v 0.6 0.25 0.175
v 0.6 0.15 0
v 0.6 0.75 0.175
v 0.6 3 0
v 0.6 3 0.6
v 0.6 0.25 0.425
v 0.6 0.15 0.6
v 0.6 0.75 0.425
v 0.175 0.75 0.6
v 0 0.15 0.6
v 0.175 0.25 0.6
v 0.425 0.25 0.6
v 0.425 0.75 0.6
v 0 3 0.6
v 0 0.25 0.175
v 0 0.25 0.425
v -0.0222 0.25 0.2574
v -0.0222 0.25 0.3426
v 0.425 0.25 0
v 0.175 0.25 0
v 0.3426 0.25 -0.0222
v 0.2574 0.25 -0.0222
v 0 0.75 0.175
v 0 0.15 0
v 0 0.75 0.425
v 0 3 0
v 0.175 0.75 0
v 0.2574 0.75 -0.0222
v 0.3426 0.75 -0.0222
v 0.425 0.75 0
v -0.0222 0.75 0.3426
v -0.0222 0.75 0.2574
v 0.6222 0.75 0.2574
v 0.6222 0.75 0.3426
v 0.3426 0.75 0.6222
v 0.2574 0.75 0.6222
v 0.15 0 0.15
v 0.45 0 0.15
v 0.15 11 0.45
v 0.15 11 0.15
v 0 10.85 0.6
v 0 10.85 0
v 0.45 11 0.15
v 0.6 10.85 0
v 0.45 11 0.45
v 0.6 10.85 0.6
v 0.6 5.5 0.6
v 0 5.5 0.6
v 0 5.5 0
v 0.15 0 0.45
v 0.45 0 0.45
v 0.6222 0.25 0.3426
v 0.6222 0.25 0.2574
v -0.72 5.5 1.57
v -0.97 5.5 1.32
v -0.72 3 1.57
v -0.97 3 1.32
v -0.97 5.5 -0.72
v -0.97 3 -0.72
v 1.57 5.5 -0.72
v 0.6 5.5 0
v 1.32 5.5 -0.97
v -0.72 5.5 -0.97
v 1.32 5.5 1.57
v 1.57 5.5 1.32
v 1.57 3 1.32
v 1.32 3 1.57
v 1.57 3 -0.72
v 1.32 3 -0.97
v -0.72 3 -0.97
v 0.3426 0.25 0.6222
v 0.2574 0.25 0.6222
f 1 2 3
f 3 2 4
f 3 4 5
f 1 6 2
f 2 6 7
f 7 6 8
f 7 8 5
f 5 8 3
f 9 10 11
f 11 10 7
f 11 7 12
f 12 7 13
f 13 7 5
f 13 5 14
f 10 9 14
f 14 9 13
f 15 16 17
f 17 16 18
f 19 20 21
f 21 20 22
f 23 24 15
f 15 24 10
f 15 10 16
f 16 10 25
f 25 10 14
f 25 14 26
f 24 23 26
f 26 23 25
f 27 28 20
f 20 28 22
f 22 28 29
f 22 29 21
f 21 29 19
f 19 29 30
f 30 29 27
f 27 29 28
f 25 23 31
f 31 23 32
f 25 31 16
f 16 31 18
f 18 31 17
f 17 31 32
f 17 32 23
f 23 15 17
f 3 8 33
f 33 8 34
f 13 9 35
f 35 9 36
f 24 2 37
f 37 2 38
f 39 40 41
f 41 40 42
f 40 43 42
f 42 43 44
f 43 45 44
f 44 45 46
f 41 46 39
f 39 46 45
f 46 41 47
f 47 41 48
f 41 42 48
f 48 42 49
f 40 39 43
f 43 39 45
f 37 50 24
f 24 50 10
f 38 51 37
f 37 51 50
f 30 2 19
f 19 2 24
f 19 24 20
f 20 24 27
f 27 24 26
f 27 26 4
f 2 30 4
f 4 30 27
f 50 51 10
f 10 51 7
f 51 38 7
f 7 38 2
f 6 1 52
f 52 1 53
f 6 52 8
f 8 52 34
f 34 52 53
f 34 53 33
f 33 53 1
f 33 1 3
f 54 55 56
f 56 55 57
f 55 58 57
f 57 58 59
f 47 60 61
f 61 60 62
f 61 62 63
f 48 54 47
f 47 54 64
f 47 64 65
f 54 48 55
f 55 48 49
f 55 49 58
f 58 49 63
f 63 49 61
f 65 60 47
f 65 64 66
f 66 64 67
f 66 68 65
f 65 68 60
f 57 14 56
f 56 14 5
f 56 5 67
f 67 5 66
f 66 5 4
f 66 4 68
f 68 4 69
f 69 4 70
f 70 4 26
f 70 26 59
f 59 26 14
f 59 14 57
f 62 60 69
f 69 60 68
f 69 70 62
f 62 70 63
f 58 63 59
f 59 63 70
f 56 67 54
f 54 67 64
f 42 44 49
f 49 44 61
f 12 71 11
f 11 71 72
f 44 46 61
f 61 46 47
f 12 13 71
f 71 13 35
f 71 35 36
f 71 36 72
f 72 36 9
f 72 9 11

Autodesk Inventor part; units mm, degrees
ref_plane "YZ Plane" through (0, 0, 0) normal (1, 0, 0) x (0, 1, 0)
sketch "Skizze2" plane through (0, 0, 0) normal (0, 1, 0) x (-1, 0, 0)
  line L0 (0, 0) -> (-0.6, 0)
  line L1 (-0.6, 0) -> (-0.6, 0.6)
  line L2 (-0.6, 0.6) -> (0, 0.6)
  line L3 (0, 0.6) -> (0, 0)
  dimension "d0" = 0.6
  dimension "d1" = 0.6
extrude "Extrusion1" add sketch "Skizze2" along normal blind 11
ref_plane "Arbeitsebene1" through (0, 3, 0) normal (0, -1, 0) x (1, 0, 0)
sketch "Skizze3" plane through (0, 3, 0) normal (0, -1, 0) x (1, 0, 0)
  line L0 (1.57, 1.57) -> (-0.97, 1.57)
  line L1 (-0.97, 1.57) -> (-0.97, -0.97)
  line L2 (-0.97, -0.97) -> (1.57, -0.97)
  line L3 (1.57, -0.97) -> (1.57, 1.57)
  line L4 (0.6, 0) -> (0.6, 0.6) projected
  line L5 (0, 0.6) -> (0.6, 0.6) projected
  point P0 (0, 0)
  dimension "d5" = 2.54
  dimension "d6" = 2.54
  dimension "d7" = 0.97
  dimension "d8" = 0.97
extrude "Extrusion2" add sketch "Skizze3" against normal blind 2.5
chamfer "Fase1" distance 0.25 angle 45 4 edges at (-0.97, 4.25, -0.97) (1.57, 4.25, -0.97) (1.57, 4.25, 1.57) (-0.97, 4.25, 1.57)
chamfer "Fase2" distance 0.15 angle 45 4 edges at (0.6, 0, 0.3) (0.3, 0, 0) (0, 0, 0.3) (0.3, 0, 0.6)
chamfer "Fase3" distance 0.15 angle 45 4 edges at (0.6, 11, 0.3) (0.3, 11, 0) (0, 11, 0.3) (0.3, 11, 0.6)
ref_plane "Arbeitsebene2" through (0, 0.25, 0) normal (0, -1, 0) x (1, 0, 0)
sketch "Skizze6" plane through (0, 0.25, 0) normal (0, -1, 0) x (1, 0, 0)
  circle A0 centre (0.3, 0.3) radius 0.325
  line L0 (0, 0) -> (0.6, 0) projected
  line L1 (0.6, 0) -> (0.6, 0.6) projected
  dimension "d26" = 0.65
  dimension "d27" = 0.3
  dimension "d28" = 0.3
extrude "Extrusion4" add sketch "Skizze6" against normal blind 0.5 contours A0 L1 | L1 A0 L0 | L0 A0 picked at (0.4269, 0.2422)
properties part number "Pin"
